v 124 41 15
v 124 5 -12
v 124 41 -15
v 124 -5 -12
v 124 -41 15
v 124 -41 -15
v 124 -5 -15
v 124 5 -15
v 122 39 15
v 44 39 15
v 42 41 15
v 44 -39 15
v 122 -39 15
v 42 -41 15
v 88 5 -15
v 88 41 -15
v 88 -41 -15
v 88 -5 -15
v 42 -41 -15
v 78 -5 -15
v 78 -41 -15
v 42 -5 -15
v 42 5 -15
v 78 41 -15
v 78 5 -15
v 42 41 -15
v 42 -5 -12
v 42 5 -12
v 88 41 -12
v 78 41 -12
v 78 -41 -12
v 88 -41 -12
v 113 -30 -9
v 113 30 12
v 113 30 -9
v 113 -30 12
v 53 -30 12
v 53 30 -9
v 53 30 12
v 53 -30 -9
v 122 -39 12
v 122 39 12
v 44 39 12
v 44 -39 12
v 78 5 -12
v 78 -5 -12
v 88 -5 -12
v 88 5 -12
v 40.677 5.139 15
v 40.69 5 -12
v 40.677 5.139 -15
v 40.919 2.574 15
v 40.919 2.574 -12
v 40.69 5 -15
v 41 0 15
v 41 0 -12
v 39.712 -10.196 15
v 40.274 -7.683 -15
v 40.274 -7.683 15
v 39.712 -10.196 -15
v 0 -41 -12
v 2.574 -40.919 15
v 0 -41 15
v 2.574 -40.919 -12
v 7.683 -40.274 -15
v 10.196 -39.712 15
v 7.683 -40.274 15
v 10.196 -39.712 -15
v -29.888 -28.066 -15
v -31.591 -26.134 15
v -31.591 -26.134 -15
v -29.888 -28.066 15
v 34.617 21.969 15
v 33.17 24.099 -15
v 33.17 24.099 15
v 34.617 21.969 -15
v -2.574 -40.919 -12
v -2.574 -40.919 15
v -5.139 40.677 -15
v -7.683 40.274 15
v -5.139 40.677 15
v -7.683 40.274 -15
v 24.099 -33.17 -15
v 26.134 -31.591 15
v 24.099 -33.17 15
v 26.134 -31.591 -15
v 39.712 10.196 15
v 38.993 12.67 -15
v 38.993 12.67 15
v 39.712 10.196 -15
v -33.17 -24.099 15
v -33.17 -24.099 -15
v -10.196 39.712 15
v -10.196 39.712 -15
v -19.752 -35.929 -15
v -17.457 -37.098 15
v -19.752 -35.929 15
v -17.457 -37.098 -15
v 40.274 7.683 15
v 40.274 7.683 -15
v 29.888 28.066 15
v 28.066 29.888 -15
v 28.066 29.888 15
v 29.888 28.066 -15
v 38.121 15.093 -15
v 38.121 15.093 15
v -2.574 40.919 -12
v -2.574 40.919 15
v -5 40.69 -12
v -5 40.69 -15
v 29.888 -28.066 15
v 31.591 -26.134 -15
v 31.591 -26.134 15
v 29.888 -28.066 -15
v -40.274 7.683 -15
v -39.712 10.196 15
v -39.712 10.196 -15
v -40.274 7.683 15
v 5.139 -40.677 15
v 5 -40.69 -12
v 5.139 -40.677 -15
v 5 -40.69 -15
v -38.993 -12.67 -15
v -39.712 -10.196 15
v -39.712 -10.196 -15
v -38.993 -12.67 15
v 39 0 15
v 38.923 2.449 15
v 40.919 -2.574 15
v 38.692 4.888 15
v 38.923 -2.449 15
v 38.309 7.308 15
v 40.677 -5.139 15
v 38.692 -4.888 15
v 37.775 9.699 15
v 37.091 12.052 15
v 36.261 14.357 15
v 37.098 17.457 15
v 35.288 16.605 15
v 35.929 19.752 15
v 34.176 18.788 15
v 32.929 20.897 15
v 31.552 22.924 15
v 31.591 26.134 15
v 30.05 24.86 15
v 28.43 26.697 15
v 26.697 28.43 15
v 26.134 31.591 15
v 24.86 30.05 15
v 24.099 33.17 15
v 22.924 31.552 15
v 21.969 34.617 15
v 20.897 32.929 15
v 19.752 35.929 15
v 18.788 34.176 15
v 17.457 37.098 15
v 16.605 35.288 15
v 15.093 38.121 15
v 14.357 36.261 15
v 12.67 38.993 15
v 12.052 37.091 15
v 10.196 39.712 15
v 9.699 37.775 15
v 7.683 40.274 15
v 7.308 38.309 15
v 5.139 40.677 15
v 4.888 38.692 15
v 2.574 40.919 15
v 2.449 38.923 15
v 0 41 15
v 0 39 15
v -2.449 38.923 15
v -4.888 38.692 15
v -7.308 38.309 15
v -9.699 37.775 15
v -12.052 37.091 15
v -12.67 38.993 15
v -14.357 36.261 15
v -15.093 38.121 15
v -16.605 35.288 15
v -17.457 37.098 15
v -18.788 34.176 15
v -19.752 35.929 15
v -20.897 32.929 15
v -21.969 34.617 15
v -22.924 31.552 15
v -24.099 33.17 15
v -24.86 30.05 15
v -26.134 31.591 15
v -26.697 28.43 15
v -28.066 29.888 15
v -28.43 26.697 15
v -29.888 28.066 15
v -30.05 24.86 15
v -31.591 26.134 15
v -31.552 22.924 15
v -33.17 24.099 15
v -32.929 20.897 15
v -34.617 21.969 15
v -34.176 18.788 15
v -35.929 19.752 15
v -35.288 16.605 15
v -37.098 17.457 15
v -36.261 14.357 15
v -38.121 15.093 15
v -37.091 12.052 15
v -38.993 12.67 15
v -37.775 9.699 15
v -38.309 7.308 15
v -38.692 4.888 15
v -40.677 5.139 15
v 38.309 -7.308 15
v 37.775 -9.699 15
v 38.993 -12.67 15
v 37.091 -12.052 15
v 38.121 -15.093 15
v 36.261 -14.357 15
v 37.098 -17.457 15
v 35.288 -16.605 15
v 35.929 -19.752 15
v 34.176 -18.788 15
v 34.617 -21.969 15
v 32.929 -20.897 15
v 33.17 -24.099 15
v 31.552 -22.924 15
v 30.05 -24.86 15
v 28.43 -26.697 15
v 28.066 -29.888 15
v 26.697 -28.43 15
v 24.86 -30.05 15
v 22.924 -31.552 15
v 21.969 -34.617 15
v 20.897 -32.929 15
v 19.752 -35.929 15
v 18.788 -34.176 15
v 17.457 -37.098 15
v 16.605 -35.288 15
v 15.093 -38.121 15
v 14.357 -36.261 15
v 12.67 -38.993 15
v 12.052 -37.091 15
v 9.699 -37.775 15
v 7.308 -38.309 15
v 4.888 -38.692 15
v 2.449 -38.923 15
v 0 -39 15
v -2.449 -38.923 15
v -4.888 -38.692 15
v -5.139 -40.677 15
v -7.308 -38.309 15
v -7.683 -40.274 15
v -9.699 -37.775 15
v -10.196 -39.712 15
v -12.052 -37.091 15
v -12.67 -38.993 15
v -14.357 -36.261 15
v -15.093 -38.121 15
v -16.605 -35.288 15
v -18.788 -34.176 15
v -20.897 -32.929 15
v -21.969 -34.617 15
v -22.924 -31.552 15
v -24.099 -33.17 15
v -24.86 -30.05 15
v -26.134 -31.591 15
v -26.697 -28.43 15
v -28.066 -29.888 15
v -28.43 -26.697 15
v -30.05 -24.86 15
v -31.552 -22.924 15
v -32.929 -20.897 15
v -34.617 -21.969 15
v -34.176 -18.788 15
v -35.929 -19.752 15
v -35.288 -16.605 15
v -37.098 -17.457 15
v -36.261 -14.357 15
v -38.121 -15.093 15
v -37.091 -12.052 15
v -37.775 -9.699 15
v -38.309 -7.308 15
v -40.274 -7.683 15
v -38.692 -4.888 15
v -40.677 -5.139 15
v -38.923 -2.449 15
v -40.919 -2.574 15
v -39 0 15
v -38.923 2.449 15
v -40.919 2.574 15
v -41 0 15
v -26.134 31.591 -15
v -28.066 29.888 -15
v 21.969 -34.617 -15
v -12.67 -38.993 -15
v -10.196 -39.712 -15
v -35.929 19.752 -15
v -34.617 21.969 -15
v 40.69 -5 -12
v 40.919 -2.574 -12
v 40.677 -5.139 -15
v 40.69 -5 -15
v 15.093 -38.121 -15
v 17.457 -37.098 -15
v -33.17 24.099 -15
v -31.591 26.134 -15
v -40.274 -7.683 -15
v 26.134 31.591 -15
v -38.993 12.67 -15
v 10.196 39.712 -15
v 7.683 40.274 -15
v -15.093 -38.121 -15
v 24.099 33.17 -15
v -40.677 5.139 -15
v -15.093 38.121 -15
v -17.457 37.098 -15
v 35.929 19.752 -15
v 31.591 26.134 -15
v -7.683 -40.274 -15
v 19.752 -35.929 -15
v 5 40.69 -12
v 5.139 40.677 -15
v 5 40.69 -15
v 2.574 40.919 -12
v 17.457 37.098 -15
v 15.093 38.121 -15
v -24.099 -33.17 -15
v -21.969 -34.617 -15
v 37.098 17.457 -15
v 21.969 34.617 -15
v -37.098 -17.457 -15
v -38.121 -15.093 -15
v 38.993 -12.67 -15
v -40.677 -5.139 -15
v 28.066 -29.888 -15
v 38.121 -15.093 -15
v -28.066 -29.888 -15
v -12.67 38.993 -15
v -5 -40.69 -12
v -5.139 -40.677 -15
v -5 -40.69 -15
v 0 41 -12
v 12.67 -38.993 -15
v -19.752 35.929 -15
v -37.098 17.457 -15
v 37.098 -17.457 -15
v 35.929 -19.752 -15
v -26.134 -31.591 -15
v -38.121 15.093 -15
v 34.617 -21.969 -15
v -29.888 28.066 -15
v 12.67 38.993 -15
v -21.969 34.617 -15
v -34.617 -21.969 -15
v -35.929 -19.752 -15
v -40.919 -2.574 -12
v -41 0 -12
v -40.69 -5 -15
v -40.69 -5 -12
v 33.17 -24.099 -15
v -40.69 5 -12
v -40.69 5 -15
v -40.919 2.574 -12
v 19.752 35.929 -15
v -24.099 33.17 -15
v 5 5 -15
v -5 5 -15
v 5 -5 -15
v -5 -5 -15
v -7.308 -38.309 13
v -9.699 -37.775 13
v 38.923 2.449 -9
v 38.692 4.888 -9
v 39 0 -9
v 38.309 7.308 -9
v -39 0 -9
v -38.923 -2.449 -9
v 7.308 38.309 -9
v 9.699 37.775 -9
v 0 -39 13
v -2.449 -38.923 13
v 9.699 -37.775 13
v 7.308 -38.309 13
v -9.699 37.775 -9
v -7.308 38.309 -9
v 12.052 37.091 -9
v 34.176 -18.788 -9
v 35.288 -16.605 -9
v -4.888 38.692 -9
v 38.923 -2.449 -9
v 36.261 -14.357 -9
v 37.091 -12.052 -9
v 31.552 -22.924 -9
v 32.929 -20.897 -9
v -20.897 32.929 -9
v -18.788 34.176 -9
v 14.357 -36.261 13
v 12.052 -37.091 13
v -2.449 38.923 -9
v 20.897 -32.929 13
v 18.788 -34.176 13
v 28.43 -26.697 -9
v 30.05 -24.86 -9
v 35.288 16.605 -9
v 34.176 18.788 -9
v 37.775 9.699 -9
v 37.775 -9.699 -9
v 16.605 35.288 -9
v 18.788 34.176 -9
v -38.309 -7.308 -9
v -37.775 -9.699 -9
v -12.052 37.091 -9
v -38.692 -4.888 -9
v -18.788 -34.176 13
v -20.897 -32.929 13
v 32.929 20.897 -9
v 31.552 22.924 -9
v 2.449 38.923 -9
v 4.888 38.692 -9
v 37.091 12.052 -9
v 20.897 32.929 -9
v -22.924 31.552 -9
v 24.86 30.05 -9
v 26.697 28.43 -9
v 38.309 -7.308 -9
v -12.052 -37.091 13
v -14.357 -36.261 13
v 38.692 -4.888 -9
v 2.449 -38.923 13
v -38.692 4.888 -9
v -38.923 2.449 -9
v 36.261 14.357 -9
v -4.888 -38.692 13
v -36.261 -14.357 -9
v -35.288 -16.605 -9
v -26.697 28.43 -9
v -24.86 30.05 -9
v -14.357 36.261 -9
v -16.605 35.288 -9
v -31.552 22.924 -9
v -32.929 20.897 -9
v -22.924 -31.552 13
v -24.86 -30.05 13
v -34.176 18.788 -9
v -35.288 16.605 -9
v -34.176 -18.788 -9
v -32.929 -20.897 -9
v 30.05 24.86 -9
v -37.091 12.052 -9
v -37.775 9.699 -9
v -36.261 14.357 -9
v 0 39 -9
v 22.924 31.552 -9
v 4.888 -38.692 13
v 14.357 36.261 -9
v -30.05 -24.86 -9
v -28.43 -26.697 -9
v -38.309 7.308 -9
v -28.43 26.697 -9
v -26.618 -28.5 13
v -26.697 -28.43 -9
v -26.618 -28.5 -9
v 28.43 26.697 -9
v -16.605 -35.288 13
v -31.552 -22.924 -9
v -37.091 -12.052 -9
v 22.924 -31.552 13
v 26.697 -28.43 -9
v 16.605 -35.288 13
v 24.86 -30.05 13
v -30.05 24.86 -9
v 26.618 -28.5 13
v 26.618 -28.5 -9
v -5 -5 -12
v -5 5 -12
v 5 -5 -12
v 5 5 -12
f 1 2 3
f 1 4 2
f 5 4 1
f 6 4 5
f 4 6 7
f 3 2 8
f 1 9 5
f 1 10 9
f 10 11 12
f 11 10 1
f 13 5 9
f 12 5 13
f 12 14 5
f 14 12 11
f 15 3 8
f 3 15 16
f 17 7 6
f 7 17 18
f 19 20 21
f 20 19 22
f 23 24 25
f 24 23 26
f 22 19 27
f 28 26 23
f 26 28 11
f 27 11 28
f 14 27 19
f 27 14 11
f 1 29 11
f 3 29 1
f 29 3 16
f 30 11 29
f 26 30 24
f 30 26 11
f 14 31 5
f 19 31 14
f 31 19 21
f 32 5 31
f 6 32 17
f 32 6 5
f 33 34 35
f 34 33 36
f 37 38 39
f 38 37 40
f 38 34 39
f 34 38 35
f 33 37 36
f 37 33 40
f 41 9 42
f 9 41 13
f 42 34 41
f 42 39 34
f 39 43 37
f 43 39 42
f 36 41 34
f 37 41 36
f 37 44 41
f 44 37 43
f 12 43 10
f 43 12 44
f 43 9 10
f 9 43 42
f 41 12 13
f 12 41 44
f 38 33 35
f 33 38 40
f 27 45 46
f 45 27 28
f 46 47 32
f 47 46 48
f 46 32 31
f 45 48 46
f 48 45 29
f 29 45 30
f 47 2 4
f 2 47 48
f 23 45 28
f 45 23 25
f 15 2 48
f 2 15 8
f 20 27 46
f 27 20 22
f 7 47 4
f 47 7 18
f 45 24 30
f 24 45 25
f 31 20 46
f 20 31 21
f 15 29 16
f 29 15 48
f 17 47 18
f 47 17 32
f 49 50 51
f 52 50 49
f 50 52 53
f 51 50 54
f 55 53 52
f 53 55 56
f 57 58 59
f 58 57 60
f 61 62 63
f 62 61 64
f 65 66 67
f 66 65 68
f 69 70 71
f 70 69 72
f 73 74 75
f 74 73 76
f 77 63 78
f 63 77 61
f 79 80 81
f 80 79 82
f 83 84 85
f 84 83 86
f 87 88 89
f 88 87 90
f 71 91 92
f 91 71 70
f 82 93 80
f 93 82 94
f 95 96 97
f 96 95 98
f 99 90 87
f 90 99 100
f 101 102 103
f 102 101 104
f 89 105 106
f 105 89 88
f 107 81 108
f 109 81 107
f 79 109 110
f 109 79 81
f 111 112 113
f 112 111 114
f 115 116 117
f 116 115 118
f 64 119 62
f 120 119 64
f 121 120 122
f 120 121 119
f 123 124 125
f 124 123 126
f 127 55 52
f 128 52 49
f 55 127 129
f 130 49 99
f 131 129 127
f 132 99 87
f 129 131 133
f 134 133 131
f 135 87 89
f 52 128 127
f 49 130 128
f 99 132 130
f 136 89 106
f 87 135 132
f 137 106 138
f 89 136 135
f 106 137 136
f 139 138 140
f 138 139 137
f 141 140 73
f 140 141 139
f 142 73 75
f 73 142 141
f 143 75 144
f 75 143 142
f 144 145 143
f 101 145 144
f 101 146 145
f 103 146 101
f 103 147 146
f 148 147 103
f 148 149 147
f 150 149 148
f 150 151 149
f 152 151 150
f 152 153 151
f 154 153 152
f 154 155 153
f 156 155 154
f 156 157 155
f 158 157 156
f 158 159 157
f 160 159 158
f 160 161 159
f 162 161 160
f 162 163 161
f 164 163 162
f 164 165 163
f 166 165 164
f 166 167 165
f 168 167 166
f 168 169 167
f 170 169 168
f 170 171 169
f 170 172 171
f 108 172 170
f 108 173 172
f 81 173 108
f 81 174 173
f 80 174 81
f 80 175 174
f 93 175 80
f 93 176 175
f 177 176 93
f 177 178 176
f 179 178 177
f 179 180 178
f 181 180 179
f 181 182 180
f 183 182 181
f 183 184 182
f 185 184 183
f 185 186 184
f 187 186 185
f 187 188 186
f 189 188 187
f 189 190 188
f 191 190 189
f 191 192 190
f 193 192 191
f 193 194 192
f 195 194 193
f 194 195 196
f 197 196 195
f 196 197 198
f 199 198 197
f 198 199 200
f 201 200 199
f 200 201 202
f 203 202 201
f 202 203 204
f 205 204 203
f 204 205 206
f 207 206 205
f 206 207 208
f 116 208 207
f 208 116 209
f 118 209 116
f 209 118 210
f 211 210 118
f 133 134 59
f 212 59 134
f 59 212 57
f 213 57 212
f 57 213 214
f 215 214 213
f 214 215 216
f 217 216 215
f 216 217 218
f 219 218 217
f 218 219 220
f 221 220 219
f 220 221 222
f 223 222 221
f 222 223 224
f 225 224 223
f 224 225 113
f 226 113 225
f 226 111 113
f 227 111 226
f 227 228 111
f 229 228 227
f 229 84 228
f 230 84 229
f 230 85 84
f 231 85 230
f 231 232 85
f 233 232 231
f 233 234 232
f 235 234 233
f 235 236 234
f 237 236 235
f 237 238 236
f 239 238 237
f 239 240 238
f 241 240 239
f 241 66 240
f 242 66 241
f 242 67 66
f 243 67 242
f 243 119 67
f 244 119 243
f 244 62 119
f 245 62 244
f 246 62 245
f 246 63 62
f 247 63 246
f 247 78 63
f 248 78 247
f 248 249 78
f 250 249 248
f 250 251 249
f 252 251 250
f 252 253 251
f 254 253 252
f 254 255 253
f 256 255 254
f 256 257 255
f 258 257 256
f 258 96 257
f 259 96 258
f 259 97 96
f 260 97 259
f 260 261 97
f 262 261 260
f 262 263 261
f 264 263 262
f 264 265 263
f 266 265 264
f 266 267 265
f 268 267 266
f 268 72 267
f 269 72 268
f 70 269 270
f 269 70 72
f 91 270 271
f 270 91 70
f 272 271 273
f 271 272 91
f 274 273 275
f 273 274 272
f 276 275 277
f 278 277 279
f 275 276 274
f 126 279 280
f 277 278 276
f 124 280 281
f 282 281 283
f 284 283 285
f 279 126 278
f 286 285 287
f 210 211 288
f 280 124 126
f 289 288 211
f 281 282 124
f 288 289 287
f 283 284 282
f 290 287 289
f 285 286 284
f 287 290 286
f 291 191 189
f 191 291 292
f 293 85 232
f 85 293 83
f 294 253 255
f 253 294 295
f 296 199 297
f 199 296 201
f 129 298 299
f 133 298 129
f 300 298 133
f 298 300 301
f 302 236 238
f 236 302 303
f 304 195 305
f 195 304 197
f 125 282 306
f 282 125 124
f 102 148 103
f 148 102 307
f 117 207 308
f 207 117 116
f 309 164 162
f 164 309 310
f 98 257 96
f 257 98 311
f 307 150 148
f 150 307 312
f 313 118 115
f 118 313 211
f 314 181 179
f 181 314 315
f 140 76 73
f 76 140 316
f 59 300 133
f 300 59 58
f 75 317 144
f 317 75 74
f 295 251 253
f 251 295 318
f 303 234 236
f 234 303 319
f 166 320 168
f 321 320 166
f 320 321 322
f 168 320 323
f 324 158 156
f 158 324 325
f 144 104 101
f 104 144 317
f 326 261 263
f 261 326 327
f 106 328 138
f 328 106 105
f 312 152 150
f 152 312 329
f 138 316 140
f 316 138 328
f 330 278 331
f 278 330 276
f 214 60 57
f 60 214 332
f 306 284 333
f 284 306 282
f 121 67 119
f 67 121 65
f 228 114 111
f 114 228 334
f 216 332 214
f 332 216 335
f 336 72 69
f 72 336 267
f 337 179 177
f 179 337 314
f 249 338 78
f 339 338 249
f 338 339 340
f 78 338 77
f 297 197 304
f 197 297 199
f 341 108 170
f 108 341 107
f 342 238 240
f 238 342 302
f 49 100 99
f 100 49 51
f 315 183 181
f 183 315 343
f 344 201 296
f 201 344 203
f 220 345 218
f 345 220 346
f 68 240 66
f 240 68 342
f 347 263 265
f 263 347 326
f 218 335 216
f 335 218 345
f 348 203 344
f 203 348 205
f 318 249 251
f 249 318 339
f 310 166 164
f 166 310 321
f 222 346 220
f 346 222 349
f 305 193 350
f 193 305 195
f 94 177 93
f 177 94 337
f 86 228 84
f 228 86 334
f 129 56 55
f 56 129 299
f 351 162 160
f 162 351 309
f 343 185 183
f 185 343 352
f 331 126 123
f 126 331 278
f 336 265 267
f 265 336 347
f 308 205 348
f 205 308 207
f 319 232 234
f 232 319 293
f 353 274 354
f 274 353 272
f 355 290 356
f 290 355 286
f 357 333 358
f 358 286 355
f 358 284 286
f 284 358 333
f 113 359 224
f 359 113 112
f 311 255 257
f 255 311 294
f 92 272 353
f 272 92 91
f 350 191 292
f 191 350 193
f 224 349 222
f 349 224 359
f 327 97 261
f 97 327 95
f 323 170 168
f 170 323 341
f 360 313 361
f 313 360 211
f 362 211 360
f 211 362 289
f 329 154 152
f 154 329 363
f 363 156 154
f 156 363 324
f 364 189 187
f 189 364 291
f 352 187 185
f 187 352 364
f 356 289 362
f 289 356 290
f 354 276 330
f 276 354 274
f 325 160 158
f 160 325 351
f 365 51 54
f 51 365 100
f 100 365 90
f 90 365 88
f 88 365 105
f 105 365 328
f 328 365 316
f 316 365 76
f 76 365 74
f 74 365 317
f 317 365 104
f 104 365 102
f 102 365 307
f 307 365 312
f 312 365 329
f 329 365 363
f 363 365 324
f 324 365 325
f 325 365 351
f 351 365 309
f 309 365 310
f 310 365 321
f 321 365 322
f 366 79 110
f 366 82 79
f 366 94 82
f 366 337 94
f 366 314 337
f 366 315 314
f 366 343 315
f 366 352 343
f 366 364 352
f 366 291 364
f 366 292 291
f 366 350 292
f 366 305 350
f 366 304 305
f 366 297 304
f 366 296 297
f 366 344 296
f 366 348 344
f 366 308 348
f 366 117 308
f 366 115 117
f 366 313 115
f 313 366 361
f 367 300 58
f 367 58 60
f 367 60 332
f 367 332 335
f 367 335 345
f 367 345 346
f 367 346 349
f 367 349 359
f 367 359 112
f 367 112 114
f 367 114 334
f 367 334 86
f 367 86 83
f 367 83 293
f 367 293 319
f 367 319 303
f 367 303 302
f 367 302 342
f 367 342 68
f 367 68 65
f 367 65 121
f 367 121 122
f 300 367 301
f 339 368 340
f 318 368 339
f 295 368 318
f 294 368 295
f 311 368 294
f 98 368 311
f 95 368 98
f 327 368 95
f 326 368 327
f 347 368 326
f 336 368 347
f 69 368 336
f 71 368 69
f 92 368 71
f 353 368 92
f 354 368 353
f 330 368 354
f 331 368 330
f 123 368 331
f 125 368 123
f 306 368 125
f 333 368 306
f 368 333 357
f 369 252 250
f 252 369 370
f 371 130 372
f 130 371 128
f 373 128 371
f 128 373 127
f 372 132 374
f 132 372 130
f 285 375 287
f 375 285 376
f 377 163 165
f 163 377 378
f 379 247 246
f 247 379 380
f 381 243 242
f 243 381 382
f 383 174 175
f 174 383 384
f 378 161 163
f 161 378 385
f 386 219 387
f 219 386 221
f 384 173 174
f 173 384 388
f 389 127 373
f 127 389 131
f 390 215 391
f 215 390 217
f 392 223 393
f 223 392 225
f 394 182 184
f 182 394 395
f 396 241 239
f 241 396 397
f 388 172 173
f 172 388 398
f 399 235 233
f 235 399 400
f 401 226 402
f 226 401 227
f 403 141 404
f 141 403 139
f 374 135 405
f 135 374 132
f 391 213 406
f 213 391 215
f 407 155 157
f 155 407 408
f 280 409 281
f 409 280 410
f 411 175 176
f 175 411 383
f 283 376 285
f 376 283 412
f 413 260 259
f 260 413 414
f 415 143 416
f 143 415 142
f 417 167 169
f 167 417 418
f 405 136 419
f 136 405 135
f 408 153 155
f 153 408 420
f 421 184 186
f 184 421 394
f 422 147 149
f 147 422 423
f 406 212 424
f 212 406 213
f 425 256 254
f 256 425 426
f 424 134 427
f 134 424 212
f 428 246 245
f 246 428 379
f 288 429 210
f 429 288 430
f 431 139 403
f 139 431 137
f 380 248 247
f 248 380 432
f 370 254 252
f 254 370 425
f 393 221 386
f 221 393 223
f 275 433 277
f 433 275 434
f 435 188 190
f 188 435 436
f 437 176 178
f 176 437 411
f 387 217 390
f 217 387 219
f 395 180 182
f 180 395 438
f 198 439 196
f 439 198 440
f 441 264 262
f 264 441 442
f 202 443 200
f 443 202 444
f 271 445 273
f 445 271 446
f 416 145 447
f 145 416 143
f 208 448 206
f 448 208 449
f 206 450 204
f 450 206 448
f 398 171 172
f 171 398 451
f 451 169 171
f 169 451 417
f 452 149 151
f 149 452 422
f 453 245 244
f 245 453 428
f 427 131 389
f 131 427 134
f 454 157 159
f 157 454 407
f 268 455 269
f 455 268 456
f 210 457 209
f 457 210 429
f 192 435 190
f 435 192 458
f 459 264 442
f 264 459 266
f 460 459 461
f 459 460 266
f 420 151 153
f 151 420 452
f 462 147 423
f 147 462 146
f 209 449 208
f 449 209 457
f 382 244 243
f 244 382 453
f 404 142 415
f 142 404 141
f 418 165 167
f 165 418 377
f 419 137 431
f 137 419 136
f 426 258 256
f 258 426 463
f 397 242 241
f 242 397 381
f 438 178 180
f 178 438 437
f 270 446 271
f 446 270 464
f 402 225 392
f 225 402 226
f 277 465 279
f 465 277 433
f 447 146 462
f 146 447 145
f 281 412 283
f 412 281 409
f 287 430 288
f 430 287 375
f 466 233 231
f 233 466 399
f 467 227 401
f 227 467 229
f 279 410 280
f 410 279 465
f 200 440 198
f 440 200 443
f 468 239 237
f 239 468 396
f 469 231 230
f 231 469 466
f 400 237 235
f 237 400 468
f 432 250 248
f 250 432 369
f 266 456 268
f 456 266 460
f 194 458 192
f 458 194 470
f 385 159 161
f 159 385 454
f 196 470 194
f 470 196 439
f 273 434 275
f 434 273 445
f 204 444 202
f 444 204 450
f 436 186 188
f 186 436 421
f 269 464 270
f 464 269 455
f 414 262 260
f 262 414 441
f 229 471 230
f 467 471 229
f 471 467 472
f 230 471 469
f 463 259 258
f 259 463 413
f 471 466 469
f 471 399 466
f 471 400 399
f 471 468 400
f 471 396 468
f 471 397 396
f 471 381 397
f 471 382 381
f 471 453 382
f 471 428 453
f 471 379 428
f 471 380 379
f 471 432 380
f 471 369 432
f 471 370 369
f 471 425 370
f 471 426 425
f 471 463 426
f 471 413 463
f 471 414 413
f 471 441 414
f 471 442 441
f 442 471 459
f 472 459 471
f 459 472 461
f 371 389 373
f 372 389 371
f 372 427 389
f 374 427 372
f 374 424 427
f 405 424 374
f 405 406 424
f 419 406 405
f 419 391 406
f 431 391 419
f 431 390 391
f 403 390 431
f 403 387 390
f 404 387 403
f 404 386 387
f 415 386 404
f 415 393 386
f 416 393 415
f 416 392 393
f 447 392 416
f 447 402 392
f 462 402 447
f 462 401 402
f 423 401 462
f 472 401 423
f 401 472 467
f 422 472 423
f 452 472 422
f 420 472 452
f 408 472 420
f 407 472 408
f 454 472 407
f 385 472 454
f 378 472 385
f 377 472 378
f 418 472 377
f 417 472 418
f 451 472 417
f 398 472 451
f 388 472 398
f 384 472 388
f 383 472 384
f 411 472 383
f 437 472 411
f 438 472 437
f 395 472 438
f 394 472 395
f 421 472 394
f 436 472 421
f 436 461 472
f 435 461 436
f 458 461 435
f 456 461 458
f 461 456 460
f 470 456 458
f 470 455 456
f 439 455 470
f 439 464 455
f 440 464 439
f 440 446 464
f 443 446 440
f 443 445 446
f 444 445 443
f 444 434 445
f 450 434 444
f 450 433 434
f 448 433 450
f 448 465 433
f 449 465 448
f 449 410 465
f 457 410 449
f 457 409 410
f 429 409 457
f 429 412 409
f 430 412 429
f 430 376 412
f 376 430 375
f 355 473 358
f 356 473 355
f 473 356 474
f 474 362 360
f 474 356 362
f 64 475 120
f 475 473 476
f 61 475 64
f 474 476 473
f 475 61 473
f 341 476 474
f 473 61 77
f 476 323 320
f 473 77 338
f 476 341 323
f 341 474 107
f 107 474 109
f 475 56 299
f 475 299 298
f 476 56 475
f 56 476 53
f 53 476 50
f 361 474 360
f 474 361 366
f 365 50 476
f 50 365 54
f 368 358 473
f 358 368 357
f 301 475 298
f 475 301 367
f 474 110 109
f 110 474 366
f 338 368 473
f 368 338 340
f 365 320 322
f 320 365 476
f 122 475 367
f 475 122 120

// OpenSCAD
$fn =100;

difference() {
    union() {
    difference() {
       cylinder(30, 41, 41, true);
       cylinder(32, 39, 39, true);
    }
    intersection() {
       cylinder(30, 41, 41, true);
        translate([0, -34, 0]) {
           cube([85, 11, 26], true);
        }
    }
    translate([0, 0, -12]) {
        cylinder(6, 41, 41, true);
    }
}
    translate([0, 0, -14]) {
        cube([100, 10, 4], true);
    }
    rotate([0, 0, 90]) {
        translate([0, 0, -14]) {
        cube([100, 10, 4], true);
    }
}
}
/*
 translate([-21, -27, 0]) {
        cylinder(26, 2, 2, true);
    }

 translate([21, -27, 0]) {
        cylinder(26, 2, 2, true);
    }
    
*/
translate([83, 0, 0]) {
    difference() {
    union() {
        difference() {
        cube([82, 82, 30], true);
        cube([60, 60, 32], true);
        translate([0, 0, 14]) {
           cube([78, 78, 4], true);
        }
    }
    translate([0, 0, -12]) {cube([64, 64, 6], true); }
}
    translate([0, 0, -14]) {
        cube([100, 10, 4], true);
    }
    rotate([0, 0, 90]) {
        translate([0, 0, -14]) {
        cube([100, 10, 4], true);
    }
    }
}
}
